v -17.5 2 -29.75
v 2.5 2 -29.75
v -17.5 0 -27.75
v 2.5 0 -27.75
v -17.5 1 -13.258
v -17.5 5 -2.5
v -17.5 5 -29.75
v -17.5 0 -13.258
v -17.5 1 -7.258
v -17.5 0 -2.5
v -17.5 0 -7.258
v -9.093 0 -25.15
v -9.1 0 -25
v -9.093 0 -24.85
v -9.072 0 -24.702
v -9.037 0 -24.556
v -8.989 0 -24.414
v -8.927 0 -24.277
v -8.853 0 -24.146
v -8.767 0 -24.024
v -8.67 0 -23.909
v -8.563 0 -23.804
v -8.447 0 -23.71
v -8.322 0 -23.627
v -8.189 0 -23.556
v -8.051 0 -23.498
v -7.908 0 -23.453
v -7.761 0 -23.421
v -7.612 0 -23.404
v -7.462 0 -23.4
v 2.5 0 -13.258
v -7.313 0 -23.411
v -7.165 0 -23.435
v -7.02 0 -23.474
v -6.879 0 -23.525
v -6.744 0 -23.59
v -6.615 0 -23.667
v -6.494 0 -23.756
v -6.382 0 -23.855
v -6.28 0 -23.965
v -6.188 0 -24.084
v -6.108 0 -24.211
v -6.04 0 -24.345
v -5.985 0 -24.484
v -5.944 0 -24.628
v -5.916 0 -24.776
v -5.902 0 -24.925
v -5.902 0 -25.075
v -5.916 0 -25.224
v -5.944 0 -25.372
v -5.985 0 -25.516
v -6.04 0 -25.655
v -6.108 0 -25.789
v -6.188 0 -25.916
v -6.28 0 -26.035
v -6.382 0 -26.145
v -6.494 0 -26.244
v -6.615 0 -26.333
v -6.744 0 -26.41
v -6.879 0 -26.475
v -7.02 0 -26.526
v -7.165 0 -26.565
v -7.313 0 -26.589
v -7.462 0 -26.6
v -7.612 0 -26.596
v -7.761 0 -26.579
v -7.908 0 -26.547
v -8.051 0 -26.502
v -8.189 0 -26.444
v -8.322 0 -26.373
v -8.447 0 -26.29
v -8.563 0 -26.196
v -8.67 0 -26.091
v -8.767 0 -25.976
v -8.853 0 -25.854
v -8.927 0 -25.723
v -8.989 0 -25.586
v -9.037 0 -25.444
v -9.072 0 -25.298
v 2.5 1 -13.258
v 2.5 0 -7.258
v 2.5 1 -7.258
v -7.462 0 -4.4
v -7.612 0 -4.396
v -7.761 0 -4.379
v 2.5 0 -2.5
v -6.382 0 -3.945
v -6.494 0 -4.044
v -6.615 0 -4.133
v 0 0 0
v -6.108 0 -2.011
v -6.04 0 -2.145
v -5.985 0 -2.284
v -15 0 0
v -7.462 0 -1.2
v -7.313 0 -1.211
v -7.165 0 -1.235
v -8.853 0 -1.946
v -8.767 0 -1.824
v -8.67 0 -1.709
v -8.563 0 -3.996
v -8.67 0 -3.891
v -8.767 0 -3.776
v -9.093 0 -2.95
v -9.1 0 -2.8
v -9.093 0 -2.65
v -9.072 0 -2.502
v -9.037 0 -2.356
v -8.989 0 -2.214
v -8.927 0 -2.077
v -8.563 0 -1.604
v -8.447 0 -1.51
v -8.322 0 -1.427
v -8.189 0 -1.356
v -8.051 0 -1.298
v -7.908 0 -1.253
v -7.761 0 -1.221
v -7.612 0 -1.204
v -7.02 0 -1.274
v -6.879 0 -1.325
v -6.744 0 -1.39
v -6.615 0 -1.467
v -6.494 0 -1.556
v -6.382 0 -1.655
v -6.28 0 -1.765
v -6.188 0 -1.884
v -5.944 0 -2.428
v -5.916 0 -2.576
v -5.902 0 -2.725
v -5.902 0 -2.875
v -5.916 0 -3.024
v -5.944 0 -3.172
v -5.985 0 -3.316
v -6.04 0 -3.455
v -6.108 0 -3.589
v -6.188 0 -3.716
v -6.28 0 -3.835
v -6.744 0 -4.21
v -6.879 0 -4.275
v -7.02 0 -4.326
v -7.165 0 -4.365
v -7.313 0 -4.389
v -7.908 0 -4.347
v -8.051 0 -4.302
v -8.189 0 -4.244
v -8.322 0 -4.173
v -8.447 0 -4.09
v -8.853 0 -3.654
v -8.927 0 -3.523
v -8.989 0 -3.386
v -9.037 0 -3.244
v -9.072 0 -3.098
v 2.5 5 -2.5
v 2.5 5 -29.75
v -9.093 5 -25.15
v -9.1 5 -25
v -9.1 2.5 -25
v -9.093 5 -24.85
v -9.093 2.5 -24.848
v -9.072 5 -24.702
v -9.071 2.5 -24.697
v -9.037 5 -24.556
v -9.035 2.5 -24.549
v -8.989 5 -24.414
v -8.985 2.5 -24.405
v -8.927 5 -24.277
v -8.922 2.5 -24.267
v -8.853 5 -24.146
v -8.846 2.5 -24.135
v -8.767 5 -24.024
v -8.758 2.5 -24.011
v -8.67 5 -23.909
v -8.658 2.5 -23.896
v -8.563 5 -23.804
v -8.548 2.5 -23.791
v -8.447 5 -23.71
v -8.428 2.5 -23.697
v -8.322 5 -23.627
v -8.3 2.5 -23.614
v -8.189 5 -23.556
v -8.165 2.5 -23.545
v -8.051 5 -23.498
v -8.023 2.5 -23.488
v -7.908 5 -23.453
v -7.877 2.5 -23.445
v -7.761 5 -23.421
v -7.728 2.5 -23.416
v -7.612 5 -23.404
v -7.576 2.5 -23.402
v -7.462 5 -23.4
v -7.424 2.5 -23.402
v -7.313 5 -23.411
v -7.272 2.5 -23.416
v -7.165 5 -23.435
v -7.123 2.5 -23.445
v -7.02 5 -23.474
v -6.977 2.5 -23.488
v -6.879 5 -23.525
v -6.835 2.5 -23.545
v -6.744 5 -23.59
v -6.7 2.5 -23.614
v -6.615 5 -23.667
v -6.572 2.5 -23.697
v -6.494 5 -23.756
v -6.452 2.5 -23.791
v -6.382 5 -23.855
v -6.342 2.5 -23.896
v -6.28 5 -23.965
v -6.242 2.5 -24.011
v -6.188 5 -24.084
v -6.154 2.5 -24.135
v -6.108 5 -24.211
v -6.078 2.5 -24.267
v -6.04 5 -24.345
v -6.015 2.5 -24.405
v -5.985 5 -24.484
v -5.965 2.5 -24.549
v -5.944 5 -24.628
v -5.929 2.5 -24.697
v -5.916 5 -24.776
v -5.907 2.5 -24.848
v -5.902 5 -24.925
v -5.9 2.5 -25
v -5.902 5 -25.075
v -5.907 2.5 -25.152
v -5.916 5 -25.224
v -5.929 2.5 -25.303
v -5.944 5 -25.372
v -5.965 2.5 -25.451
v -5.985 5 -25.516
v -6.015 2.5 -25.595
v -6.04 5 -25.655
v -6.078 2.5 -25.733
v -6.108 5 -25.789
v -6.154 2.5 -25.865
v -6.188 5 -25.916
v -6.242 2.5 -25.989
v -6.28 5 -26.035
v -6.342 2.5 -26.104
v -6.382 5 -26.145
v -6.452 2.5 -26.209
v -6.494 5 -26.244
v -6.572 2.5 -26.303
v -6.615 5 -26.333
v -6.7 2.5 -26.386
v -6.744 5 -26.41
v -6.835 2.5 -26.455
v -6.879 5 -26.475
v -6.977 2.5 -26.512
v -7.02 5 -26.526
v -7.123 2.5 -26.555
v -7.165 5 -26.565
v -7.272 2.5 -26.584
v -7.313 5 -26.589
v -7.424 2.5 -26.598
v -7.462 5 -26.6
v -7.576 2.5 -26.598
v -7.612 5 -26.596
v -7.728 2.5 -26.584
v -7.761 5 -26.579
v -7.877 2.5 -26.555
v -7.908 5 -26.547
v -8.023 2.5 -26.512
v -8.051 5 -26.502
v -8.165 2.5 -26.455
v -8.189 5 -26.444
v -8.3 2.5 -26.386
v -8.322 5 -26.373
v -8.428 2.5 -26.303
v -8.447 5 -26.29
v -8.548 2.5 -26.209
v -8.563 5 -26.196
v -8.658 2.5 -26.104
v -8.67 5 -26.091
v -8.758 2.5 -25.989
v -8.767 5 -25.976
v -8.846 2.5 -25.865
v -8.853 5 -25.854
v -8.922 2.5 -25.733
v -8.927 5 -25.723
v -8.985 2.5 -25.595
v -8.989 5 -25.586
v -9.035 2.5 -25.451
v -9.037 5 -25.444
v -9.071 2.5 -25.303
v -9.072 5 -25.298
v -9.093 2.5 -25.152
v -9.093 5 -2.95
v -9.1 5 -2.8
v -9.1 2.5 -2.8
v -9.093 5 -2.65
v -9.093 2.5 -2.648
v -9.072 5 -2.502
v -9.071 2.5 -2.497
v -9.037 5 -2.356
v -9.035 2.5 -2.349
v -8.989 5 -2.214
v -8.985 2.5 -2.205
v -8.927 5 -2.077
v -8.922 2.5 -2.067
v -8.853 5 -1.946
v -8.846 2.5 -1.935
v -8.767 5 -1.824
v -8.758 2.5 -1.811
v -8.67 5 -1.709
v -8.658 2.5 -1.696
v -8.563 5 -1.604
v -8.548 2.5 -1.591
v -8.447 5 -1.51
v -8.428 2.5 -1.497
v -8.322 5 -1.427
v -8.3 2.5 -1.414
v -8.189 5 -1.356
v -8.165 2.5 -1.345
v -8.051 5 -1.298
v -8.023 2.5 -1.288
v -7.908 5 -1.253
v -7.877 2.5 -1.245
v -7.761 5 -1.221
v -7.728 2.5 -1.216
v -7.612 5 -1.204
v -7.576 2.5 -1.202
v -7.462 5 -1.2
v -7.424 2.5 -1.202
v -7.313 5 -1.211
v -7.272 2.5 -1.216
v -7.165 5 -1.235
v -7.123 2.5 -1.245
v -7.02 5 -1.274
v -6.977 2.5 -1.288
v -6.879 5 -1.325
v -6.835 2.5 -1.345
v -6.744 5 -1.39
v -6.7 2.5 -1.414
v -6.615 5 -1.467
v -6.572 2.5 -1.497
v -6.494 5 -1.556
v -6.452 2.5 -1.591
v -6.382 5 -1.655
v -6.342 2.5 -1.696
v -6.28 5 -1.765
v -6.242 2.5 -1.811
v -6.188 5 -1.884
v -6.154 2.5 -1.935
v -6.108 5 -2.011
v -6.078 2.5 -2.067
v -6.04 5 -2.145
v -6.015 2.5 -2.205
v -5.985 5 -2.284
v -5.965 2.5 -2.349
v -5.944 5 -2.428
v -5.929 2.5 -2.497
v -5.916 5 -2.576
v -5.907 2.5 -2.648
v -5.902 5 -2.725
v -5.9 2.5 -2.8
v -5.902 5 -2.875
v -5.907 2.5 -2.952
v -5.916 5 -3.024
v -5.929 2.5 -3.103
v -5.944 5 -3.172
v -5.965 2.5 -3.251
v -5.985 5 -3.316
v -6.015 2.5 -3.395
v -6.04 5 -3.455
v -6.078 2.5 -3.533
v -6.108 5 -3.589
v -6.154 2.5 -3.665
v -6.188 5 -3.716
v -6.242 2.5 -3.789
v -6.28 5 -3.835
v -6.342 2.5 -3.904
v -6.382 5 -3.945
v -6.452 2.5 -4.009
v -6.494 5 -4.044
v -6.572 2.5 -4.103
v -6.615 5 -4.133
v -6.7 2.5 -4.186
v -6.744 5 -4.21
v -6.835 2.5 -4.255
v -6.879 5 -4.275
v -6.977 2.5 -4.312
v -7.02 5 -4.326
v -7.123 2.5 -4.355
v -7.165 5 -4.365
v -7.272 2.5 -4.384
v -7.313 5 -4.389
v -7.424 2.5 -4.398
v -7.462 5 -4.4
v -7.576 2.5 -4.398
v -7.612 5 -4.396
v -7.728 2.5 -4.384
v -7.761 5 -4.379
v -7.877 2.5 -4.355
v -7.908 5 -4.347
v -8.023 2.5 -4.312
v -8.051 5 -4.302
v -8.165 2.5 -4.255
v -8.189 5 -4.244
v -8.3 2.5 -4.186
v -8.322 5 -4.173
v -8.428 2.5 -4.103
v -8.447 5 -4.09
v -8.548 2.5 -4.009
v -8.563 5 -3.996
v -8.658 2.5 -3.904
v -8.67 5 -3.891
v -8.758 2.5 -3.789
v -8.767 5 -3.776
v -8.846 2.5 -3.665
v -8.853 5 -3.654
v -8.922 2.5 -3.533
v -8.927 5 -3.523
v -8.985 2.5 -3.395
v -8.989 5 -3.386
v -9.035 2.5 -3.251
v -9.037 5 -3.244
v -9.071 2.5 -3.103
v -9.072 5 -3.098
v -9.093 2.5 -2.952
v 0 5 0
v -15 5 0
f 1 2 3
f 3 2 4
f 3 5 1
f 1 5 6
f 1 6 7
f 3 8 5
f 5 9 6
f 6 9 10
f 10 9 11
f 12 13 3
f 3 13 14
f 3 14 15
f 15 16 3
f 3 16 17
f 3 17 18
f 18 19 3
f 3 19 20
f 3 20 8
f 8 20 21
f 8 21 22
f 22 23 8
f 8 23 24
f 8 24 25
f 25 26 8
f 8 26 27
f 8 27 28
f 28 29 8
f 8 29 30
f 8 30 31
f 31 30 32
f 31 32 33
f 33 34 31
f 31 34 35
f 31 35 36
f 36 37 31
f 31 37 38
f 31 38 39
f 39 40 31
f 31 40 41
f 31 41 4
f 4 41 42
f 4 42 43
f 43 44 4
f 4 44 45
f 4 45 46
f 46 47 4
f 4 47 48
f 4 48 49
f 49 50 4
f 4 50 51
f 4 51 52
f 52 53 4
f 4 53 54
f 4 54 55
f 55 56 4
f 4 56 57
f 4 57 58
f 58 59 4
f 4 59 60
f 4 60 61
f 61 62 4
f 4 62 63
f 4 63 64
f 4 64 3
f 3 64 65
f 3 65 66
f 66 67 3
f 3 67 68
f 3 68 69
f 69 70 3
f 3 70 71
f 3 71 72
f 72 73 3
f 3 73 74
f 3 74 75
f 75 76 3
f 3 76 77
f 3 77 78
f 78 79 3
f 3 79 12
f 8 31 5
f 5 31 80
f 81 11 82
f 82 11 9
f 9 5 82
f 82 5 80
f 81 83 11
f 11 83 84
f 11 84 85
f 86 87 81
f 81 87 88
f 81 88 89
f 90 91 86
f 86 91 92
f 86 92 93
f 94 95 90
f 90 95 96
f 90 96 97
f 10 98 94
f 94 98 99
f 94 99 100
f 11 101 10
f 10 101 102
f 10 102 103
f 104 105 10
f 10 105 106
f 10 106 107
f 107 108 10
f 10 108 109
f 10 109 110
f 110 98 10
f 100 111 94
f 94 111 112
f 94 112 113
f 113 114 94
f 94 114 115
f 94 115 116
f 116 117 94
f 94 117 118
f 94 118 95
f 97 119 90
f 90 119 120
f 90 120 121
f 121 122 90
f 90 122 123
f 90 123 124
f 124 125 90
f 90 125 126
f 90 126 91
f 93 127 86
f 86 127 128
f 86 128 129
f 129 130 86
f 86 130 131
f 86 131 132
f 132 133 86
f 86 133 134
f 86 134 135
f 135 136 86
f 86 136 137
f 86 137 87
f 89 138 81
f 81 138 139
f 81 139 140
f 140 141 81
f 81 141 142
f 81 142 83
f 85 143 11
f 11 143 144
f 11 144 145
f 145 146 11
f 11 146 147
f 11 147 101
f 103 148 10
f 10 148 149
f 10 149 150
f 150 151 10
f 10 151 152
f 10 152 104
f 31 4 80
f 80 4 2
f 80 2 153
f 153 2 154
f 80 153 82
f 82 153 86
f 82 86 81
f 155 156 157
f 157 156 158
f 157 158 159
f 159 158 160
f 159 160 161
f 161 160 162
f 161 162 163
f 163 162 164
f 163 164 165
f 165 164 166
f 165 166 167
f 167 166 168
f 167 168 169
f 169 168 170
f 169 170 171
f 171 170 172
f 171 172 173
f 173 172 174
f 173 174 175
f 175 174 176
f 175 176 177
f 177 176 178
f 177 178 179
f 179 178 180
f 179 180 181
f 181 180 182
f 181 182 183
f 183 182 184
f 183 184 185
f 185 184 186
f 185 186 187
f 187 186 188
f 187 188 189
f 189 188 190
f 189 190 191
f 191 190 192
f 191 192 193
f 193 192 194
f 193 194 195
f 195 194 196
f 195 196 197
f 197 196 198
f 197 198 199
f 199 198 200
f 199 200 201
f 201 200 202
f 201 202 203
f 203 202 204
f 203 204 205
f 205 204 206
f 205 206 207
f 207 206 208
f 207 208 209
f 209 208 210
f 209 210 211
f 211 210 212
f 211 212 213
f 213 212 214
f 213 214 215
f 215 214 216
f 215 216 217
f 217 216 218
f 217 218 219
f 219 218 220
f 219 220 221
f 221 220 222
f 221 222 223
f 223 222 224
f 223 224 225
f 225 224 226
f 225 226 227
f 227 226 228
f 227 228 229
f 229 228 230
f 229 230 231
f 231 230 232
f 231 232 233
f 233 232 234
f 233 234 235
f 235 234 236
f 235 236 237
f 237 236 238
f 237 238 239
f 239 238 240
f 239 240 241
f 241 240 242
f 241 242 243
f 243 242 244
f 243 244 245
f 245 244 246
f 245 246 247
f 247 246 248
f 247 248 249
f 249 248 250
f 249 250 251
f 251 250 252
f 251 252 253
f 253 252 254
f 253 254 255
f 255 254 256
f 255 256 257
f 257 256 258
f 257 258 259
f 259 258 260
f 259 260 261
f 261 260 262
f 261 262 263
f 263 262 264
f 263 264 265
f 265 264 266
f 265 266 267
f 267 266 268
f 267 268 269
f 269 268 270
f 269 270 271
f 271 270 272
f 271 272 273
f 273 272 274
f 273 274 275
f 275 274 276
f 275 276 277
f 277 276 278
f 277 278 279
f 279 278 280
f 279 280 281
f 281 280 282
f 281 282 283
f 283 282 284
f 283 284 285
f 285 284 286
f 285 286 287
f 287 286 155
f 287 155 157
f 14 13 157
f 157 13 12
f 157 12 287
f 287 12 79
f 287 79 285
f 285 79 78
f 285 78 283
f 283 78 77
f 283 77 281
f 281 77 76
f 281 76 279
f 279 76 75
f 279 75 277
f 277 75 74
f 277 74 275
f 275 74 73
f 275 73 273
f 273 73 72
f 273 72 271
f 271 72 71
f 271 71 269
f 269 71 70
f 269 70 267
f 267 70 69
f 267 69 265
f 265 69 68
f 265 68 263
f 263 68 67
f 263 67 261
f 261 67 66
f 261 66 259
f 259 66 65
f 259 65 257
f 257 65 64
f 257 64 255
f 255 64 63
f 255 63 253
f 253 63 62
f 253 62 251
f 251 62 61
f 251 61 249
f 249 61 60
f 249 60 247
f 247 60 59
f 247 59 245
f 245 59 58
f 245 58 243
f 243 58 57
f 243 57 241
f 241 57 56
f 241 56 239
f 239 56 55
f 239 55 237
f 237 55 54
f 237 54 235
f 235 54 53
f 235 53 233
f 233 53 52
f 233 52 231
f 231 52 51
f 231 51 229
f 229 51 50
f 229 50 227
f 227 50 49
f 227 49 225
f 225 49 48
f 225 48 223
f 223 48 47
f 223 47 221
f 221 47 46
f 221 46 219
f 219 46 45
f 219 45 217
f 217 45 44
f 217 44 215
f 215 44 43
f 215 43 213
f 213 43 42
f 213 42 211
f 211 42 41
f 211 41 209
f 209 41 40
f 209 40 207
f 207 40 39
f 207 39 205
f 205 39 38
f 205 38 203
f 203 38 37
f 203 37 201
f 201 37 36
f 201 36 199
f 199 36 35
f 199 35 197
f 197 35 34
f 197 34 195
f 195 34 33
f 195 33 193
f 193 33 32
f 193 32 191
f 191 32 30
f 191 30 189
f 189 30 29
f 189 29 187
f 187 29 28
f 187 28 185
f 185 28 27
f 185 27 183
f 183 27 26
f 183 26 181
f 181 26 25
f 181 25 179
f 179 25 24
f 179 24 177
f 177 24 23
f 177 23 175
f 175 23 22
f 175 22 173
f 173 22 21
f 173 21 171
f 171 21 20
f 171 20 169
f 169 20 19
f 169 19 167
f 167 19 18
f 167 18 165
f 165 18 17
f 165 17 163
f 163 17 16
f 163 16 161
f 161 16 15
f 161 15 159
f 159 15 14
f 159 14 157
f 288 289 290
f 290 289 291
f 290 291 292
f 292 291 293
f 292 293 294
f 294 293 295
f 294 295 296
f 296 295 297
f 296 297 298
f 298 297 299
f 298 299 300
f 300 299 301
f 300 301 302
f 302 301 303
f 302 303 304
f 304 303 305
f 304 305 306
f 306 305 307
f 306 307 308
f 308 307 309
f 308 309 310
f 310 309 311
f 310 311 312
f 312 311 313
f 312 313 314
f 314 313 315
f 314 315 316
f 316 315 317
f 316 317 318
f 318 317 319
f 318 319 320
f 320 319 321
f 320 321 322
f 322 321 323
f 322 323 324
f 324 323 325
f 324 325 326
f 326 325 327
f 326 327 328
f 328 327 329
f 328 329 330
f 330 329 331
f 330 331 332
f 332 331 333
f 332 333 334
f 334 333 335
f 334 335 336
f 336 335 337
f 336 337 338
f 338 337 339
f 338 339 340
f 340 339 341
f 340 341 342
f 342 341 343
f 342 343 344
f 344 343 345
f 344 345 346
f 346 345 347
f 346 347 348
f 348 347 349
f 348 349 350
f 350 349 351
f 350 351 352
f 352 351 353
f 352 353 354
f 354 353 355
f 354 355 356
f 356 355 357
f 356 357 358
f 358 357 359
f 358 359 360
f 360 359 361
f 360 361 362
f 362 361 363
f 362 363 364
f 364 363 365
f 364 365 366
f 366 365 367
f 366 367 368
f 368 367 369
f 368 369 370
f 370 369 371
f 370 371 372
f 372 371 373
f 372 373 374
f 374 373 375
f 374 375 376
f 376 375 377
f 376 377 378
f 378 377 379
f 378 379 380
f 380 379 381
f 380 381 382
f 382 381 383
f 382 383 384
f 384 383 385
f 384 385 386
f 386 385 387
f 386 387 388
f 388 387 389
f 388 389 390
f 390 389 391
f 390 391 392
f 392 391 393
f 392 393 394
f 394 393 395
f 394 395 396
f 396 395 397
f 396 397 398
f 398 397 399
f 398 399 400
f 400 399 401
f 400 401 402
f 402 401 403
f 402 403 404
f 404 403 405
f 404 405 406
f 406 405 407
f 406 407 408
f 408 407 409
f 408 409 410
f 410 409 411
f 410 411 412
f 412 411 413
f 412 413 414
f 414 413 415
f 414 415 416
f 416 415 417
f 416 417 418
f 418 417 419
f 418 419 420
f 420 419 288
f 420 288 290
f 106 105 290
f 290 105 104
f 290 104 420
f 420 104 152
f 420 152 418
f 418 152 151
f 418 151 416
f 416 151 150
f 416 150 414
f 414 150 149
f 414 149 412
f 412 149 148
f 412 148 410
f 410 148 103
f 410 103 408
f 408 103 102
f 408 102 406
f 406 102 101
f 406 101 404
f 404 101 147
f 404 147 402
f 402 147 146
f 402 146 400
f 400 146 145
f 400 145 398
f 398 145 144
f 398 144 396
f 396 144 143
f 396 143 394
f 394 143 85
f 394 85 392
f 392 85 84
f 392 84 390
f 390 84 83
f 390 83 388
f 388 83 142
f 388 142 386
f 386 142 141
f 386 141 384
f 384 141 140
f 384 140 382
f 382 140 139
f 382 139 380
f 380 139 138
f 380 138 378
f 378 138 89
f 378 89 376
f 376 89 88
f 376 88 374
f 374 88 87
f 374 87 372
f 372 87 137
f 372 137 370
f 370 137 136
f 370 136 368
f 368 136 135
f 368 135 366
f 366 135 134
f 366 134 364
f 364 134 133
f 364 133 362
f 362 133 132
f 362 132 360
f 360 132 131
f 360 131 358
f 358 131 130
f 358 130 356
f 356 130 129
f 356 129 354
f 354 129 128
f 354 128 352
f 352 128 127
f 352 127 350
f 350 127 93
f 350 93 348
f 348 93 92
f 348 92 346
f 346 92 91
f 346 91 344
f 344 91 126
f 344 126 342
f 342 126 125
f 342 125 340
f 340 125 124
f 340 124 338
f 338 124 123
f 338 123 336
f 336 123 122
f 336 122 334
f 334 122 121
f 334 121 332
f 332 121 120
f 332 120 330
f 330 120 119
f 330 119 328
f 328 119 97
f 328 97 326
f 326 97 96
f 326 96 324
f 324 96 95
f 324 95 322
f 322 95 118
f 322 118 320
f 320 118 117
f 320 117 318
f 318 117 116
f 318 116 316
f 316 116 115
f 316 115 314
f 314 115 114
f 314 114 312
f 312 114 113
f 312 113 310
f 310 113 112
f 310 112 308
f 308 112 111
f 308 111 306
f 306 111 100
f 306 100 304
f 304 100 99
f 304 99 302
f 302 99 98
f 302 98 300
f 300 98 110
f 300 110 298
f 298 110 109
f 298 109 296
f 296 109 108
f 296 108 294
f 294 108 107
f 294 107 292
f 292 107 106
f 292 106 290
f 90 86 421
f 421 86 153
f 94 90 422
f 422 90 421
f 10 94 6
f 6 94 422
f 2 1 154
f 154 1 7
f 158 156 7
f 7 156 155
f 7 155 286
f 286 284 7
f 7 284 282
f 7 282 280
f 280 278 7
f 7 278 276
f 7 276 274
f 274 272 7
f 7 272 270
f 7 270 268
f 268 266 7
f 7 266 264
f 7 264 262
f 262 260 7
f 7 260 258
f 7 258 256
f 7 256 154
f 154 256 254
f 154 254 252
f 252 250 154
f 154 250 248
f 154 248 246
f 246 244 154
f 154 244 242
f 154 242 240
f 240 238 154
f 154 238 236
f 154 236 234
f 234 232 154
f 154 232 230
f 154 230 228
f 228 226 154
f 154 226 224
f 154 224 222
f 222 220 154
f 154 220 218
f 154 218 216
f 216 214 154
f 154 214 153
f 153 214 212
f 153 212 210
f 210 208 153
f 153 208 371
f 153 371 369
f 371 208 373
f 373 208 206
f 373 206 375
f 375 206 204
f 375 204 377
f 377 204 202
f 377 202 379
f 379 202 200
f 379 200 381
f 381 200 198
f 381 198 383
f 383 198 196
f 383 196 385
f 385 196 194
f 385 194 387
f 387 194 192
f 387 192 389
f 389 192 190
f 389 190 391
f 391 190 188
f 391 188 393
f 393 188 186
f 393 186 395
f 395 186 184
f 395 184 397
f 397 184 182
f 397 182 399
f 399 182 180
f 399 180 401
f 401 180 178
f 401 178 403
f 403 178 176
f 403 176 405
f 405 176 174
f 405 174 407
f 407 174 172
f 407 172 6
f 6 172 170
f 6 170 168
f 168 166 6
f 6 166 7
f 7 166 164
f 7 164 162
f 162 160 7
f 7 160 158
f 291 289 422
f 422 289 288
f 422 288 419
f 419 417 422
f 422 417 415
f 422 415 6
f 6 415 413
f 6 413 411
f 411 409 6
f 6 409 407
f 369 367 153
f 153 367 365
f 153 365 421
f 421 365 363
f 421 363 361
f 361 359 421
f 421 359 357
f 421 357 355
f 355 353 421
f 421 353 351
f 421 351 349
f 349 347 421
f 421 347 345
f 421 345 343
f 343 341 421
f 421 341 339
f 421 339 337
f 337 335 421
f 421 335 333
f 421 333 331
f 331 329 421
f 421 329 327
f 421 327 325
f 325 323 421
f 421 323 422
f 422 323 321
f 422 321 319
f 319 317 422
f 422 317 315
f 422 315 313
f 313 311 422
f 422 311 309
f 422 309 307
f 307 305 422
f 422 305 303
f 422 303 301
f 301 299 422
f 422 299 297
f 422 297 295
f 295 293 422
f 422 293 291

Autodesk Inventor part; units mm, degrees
ref_plane "YZ Plane" through (0, 0, 0) normal (1, 0, 0) x (0, 1, 0)
ref_plane "XZ Plane" through (0, 0, 0) normal (0, 1, 0) x (-1, 0, 0)
ref_plane "XY Plane" through (0, 0, 0) normal (0, 0, 1) x (1, 0, 0)
sketch "Эскиз1" plane through (0, 0, 0) normal (0, 1, 0) x (-1, 0, 0)
  line L0 (17.5, -26.75) -> (-2.5, -26.75)
  line L1 (17.5, -26.75) -> (17.5, -2.5)
  line L2 (15, 0) -> (17.5, -2.5)
  line L3 (0, 0) -> (15, 0)
  line L4 (-2.5, -2.5) -> (0, 0)
  line L5 (-2.5, -26.75) -> (-2.5, -2.5)
  circle A0 centre (7.5, -2.8) radius 1.6
  circle A1 centre (7.5, -25) radius 1.6
  point P0 (7.5, -40)
extrude "Выдавливание1" add sketch "Эскиз1" along normal blind 5
sketch "Эскиз2" plane through (0, 0, 0) normal (0, -1, 0) x (1, 0, 0)
  line L0 (2.5, -2.5) -> (2.5, -26.75) projected
  line L1 (-17.5, -26.75) -> (-17.5, -2.5) projected
  line L2 (2.5, -7.2576) -> (-17.5, -7.2576)
  line L3 (-17.5, -7.2576) -> (-17.5, -13.2576)
  line L4 (-17.5, -13.2576) -> (2.5, -13.2576)
  line L5 (2.5, -13.2576) -> (2.5, -7.2576)
  point P0 (0, 0)
  dimension "d2" = 6
extrude "Выдавливание2" cut sketch "Эскиз2" against normal blind 1
move faces "Перенос1" translate (0, 0, -3) faces at (-4.1667, 1.6667, -26.75)
chamfer "Фаска1" distance 2 angle 45 1 edges at (-7.5, 0, -29.75)
properties part number "КВ33.044.202 - Прижим ремня" material "Пластик АБС"
